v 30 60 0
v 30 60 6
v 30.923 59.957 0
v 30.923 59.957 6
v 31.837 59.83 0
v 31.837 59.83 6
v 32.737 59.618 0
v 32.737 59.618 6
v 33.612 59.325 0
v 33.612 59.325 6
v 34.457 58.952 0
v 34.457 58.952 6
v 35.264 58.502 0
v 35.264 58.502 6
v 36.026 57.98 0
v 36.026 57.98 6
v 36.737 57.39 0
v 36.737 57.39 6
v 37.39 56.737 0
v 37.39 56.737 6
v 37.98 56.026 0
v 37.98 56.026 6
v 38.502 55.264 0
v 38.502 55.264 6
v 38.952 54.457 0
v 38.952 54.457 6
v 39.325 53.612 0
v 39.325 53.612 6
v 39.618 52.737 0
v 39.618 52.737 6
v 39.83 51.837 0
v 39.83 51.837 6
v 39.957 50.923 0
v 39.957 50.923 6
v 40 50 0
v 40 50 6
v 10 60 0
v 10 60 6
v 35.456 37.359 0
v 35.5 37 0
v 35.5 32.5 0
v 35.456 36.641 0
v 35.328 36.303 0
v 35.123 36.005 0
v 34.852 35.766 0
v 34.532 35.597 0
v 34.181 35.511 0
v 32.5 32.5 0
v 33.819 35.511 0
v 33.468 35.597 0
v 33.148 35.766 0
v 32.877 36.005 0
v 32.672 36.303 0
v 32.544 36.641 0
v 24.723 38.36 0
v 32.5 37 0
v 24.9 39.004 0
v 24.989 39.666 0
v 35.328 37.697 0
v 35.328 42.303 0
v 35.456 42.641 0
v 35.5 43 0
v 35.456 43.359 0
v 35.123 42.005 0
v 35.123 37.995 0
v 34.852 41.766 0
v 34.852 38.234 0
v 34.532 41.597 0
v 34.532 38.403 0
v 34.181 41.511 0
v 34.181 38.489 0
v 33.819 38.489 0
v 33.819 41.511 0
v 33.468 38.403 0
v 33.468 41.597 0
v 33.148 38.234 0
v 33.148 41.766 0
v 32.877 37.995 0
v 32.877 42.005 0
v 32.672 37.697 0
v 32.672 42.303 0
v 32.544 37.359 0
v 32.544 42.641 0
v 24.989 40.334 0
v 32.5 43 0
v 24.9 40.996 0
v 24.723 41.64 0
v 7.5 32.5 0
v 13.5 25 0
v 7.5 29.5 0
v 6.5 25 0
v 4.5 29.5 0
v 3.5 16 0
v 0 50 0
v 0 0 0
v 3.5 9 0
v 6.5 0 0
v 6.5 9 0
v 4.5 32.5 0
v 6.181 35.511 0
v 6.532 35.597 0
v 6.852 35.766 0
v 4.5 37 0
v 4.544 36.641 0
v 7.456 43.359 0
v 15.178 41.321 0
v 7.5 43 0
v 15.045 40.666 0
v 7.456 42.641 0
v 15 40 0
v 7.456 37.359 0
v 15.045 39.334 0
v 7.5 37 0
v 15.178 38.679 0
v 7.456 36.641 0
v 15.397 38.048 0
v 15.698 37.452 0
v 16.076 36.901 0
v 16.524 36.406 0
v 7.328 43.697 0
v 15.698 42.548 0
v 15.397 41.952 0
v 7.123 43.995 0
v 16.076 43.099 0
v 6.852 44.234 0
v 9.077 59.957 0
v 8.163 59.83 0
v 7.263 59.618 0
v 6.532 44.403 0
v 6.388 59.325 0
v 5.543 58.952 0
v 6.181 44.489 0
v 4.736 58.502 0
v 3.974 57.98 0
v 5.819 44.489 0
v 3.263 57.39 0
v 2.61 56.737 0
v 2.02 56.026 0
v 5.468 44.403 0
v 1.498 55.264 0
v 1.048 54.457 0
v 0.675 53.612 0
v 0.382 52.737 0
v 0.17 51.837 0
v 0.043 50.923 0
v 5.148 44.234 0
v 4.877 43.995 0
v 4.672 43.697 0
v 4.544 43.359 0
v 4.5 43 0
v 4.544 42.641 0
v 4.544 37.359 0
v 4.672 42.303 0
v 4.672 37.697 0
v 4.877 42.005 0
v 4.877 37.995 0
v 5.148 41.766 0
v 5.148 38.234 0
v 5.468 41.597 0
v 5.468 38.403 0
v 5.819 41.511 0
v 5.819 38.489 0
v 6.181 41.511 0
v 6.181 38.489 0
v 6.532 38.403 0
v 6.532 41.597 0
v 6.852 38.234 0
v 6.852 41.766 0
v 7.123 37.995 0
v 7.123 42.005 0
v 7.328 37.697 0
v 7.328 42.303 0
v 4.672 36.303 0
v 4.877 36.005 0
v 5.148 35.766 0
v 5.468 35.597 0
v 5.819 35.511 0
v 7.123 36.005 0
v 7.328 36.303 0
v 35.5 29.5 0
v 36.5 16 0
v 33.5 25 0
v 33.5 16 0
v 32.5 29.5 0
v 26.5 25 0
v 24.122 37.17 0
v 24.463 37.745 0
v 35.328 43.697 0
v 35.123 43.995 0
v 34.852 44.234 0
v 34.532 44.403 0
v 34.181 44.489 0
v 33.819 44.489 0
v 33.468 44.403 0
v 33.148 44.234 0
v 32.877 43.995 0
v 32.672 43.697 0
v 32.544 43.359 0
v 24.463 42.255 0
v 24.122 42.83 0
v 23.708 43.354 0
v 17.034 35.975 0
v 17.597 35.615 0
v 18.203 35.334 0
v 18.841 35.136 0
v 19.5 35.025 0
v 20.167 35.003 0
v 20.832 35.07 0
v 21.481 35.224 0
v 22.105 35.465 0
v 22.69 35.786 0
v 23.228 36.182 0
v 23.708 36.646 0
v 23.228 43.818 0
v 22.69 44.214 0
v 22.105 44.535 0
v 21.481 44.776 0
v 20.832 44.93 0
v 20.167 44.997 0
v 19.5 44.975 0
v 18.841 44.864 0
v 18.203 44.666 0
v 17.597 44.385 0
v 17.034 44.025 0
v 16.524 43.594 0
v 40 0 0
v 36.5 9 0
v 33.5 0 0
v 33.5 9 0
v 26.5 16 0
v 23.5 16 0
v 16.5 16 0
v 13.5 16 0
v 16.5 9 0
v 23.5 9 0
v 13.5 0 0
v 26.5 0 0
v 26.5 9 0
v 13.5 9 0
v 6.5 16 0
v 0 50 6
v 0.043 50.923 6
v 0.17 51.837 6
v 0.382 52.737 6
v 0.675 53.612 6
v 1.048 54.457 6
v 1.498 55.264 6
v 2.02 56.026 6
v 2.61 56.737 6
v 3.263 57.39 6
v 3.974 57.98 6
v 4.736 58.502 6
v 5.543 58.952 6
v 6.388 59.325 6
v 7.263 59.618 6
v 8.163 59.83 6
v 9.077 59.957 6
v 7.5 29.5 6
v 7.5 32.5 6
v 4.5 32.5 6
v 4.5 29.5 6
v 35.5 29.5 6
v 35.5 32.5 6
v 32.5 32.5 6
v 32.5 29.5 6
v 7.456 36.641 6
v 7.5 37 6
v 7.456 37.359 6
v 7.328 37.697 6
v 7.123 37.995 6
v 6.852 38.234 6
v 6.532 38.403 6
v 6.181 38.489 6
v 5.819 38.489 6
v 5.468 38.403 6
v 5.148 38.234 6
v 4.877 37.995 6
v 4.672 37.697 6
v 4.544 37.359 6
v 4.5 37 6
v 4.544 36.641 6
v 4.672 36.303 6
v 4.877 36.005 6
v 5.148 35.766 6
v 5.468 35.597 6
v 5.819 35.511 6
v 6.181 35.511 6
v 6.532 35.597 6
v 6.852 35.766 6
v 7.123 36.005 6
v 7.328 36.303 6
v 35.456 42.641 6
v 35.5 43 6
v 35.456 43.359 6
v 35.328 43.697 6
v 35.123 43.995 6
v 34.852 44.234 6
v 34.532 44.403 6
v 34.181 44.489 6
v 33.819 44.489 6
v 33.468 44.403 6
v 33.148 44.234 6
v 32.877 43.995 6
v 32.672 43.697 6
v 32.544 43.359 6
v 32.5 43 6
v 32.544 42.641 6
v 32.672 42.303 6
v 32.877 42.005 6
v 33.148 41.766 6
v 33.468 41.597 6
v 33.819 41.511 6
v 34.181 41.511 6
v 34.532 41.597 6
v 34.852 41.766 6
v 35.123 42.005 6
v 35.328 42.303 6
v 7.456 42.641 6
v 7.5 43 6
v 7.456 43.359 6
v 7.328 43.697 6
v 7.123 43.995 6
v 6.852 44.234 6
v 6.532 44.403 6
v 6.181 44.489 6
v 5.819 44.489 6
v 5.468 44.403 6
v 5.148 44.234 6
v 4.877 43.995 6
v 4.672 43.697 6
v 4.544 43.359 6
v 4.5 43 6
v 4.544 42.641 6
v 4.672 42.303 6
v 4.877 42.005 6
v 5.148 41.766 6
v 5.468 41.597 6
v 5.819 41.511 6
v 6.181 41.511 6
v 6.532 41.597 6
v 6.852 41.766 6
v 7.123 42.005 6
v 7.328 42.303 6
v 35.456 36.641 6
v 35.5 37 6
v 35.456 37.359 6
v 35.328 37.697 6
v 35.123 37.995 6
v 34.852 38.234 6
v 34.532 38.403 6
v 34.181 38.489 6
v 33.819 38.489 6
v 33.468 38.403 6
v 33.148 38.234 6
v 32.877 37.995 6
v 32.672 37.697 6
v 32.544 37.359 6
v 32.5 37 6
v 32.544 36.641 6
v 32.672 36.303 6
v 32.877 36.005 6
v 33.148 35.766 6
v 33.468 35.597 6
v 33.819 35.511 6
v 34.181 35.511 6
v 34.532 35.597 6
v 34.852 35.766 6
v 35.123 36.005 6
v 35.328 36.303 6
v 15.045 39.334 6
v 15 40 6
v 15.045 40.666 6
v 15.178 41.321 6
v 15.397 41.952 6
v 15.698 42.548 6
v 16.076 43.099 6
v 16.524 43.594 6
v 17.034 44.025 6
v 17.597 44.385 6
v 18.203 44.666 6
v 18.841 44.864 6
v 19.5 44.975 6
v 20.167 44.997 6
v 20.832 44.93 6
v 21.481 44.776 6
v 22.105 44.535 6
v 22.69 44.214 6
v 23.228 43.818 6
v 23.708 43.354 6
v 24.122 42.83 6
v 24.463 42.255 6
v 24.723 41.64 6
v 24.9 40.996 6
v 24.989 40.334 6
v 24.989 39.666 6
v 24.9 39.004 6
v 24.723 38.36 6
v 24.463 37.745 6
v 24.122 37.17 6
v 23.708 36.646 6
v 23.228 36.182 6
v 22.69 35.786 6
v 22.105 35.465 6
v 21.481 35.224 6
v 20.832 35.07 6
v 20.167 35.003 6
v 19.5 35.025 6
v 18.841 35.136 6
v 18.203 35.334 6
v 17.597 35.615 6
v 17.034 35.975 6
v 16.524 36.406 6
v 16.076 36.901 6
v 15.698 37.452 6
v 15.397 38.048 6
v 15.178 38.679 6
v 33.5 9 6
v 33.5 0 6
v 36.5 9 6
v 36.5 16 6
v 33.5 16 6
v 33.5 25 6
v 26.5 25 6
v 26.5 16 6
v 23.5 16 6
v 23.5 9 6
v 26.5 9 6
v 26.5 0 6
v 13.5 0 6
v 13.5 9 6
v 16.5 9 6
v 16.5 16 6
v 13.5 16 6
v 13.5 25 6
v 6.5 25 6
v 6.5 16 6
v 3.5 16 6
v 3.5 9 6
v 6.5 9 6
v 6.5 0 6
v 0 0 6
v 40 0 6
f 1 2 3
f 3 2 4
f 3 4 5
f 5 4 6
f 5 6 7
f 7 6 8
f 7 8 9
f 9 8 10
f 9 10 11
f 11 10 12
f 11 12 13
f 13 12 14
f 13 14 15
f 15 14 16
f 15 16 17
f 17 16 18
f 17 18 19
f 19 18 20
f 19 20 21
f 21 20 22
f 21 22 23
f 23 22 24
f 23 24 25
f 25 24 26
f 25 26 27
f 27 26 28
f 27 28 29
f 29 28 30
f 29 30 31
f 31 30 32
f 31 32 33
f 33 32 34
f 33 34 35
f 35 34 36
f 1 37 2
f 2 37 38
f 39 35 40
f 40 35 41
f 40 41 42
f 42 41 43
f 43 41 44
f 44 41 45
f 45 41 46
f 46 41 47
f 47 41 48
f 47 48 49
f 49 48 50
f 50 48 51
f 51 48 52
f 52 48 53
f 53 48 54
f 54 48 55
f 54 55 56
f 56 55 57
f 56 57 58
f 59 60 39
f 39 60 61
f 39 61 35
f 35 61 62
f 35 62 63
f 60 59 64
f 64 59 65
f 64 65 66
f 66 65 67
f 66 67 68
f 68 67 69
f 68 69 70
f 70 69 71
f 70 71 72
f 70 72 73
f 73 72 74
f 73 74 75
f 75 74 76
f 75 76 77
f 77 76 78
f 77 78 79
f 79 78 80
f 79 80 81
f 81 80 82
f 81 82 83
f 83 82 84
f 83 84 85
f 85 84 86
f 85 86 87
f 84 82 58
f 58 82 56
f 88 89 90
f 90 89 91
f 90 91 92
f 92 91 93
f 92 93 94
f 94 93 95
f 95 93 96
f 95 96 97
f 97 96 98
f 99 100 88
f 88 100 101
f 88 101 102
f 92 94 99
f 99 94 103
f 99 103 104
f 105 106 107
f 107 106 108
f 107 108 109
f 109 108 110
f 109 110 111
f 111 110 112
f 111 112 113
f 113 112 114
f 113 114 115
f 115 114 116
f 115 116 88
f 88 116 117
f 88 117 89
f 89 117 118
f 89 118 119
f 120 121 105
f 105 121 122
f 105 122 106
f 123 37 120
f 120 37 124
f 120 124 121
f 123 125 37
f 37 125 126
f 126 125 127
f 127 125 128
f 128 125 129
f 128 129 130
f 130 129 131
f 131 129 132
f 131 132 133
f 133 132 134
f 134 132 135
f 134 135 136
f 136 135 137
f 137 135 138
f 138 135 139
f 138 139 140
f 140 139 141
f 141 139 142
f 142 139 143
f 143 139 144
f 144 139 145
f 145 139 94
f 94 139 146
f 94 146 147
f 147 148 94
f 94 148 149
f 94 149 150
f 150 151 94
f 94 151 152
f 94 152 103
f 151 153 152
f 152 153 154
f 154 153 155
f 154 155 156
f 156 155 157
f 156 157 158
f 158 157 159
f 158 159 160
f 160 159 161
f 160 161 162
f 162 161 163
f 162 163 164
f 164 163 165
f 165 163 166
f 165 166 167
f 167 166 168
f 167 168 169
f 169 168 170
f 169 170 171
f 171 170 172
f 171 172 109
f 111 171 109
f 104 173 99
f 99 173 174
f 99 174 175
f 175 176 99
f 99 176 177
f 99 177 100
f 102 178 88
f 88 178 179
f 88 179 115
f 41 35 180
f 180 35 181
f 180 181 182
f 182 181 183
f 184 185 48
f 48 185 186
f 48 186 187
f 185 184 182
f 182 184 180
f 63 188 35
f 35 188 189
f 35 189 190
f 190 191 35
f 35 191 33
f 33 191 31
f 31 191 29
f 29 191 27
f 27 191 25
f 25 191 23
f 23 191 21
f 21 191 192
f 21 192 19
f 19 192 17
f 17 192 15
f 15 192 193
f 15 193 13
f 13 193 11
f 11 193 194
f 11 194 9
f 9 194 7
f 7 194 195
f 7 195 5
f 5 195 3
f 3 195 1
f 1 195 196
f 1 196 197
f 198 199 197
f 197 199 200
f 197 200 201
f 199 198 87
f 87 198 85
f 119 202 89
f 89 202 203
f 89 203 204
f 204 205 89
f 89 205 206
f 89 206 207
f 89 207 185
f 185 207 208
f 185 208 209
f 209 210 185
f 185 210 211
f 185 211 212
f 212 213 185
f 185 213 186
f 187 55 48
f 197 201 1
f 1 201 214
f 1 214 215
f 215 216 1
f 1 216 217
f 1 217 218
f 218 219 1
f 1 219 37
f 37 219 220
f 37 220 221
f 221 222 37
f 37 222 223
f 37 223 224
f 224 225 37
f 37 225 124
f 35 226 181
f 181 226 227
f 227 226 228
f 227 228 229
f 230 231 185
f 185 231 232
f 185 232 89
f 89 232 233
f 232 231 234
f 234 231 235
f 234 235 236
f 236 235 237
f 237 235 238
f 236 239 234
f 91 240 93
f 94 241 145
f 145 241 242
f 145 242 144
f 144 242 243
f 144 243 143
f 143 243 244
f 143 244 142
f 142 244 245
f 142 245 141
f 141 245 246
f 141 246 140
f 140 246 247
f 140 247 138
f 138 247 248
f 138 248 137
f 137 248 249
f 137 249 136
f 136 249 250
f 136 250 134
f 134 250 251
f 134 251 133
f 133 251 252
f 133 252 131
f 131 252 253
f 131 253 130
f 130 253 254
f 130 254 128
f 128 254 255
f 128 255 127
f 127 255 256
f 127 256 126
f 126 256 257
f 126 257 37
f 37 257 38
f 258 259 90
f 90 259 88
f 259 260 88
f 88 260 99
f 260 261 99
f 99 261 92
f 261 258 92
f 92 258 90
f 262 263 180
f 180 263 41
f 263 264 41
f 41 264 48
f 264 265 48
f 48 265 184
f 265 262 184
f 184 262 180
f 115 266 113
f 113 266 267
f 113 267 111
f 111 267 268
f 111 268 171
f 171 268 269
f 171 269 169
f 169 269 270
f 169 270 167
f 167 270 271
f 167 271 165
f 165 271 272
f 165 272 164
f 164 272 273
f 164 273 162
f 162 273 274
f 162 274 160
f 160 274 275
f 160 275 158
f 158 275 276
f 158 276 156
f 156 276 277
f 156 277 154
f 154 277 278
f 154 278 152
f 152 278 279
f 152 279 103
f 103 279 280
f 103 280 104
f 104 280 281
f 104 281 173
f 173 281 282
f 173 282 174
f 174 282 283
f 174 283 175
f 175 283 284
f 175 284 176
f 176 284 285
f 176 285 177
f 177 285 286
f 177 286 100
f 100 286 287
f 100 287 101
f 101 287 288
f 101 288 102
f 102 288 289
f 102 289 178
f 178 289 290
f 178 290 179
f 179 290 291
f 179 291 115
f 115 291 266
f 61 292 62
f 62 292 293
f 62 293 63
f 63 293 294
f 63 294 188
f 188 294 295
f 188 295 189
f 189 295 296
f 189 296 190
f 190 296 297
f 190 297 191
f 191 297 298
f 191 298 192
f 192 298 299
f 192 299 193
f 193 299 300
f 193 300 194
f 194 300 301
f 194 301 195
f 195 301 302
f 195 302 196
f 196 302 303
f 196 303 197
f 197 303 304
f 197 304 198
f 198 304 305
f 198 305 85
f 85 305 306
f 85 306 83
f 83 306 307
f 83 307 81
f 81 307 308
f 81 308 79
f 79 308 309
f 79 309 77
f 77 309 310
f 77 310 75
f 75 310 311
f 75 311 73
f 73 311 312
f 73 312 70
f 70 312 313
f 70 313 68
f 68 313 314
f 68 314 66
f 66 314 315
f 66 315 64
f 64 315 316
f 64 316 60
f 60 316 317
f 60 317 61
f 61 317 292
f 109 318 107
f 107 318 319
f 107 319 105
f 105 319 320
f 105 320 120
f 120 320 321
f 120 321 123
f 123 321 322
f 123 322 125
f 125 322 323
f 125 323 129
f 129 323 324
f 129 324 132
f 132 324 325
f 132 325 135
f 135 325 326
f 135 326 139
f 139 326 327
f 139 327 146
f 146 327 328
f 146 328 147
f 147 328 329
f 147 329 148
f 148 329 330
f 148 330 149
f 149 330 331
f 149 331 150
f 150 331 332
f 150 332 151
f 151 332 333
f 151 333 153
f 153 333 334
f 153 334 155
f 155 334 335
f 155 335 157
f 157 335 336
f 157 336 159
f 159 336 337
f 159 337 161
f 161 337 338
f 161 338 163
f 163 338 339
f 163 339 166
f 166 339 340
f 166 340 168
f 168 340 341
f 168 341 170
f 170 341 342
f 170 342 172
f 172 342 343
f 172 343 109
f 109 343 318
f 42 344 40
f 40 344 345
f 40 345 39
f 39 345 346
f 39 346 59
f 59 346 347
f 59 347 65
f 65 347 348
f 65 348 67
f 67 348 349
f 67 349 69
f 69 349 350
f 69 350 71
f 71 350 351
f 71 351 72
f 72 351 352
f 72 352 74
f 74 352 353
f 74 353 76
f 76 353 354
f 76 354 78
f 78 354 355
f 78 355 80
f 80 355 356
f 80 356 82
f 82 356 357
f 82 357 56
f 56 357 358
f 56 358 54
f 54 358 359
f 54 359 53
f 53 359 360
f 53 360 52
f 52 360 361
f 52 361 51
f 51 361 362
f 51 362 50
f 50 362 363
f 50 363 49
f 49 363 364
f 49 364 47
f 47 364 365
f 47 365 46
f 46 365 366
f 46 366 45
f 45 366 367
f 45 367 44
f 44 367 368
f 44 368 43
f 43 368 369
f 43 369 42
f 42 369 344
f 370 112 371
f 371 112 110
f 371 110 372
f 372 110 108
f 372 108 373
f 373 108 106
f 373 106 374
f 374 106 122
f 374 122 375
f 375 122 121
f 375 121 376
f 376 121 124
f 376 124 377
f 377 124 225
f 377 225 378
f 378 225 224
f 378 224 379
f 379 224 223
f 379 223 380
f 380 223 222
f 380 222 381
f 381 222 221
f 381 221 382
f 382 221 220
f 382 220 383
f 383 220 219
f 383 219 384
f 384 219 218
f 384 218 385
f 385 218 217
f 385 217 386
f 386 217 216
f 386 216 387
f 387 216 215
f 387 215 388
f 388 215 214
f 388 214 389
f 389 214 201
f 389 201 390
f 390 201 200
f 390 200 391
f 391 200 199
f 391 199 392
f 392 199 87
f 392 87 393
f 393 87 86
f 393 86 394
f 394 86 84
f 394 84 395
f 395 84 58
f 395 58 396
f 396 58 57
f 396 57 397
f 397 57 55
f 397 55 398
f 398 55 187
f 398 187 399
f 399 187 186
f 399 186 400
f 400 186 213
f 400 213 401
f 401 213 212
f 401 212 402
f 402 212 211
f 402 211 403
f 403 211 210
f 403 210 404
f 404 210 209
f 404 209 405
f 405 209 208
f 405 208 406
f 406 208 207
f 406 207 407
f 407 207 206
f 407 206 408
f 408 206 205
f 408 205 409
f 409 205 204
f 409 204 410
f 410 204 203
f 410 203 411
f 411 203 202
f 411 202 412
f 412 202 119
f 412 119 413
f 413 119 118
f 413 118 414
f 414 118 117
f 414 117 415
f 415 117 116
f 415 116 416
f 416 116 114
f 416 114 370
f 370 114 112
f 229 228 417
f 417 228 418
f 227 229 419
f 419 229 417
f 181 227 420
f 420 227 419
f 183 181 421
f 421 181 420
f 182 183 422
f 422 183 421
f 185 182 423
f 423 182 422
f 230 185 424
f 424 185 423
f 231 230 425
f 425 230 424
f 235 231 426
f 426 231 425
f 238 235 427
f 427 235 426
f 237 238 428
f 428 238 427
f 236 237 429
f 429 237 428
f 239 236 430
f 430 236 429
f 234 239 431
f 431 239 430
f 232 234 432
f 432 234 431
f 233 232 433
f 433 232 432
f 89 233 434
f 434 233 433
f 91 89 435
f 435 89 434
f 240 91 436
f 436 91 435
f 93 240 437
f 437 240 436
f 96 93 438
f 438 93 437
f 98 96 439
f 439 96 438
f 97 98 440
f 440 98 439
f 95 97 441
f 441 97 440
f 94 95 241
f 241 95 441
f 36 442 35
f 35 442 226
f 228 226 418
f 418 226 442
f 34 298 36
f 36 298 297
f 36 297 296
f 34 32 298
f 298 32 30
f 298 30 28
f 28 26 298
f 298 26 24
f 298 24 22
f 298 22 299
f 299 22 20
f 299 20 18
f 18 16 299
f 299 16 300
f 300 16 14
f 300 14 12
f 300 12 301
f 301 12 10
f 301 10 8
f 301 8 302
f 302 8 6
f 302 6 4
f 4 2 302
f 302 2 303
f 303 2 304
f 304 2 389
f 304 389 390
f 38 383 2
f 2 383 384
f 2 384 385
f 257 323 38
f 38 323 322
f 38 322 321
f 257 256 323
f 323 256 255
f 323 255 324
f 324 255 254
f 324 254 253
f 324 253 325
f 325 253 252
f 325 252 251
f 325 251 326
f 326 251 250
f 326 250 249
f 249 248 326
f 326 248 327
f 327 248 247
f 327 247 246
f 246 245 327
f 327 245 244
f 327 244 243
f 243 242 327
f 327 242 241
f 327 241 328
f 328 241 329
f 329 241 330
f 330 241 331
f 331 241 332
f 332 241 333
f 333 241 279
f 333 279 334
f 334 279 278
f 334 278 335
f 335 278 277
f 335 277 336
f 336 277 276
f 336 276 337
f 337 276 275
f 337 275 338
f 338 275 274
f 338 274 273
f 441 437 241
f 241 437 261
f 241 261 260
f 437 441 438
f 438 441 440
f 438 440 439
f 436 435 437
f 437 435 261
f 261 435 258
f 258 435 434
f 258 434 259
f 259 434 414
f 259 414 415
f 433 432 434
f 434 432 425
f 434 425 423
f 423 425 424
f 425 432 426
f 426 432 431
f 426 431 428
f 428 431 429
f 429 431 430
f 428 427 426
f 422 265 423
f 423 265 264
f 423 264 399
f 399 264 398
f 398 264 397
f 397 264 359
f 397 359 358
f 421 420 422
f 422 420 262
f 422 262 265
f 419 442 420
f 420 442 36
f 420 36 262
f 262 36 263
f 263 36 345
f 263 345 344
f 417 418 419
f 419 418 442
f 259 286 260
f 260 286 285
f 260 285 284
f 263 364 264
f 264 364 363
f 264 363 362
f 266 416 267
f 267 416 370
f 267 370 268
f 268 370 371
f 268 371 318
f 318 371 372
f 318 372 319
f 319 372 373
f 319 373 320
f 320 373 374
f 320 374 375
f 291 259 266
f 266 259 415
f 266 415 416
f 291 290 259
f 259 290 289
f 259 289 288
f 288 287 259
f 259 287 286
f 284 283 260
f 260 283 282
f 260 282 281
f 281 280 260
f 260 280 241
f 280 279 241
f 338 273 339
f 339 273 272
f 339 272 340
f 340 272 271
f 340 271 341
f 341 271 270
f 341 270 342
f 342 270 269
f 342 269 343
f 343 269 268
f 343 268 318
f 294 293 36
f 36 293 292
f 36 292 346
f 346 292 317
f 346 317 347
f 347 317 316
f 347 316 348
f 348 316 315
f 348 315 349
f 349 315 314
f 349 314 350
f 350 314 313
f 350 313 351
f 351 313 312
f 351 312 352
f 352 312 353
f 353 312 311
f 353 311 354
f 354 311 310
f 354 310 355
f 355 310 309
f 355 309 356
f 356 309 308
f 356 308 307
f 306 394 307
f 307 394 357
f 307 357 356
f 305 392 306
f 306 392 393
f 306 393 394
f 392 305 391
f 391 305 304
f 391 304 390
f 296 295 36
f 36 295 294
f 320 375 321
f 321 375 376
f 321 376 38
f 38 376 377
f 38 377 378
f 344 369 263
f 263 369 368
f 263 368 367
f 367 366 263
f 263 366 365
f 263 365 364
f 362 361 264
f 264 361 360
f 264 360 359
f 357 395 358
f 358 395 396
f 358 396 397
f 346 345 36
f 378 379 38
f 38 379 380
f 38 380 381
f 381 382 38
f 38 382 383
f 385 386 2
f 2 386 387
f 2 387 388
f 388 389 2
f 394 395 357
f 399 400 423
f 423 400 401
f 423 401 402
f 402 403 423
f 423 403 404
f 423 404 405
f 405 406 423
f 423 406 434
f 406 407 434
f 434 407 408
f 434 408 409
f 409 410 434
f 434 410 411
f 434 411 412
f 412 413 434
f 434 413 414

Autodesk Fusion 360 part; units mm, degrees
sketch "Sketch1" plane through (0, 0, 0) normal (0, 0, 1) x (1, 0, 0)
  line L0 (0, 0) -> (40, 0)
  line L1 (40, 0) -> (40, 60)
  line L2 (40, 60) -> (0, 60)
  line L3 (0, 60) -> (0, 0)
  line L4 (20, 60) -> (20, 27.089)
  circle A0 centre (20, 40) radius 5
  line L5 (6.5, 0) -> (13.5, 0)
  line L6 (13.5, 0) -> (13.5, 25)
  line L7 (13.5, 25) -> (6.5, 25)
  line L8 (6.5, 25) -> (6.5, 0)
  line L9 (26.5, 0) -> (33.5, 0)
  line L10 (33.5, 0) -> (33.5, 25)
  line L11 (33.5, 25) -> (26.5, 25)
  line L12 (26.5, 25) -> (26.5, 0)
  line L13 (10, 25) -> (30, 25)
  line L14 (20, 25) -> (20, 0)
  line L15 (0, 16) -> (40, 16)
  line L16 (3.5, 16) -> (16.5, 16)
  line L17 (16.5, 16) -> (16.5, 9)
  line L18 (16.5, 9) -> (3.5, 9)
  line L19 (3.5, 9) -> (3.5, 16)
  line L20 (3.5, 12.5) -> (6.5, 12.5)
  line L21 (10, 9) -> (10, 0)
  line L22 (23.5, 16) -> (23.5, 9)
  line L23 (23.5, 9) -> (36.5, 9)
  line L24 (36.5, 9) -> (36.5, 16)
  dimension "d1" = 40
  dimension "d2" = 60
  dimension "d3" = 10
  dimension "d4" = 40
  dimension "d5" = 7
  dimension "d6" = 7
  dimension "d7" = 25
  dimension "d8" = 25
  dimension "d9" = 20
  dimension "d10" = 90
  dimension "d11" = 90
  dimension "d12" = 13
  dimension "d13" = 90
  dimension "d14" = 7
extrude "Extrude1" add sketch "Sketch1" along normal blind 6 contours L0 L3 L8 L15 L18 L19 | L1 L2 L3 L7 L8 L10 L11 L13 L15 L16 | L0 L6 L14 L15 L17 L18 | L0 L12 L14 L15 L22 L23 | L6 L13 L14 L15 L16 | L12 L13 L14 L15 | L0 L1 L10 L15 L23 L24
sketch "Sketch2" plane through (0, 0, 6) normal (0, 0, 1) x (-1, 0, 0)
  circle A0 centre (-20, -40) radius 5
  line L0 (-33.5, 0) -> (-40, 0)
  line L1 (-40, 0) -> (-40, -60)
  line L2 (-40, -60) -> (0, -60)
  line L3 (0, -60) -> (0, 0)
  line L4 (0, 0) -> (-6.5, 0)
  line L5 (-6.5, 0) -> (-6.5, -9)
  line L6 (-6.5, -9) -> (-3.5, -9)
  line L7 (-3.5, -9) -> (-3.5, -16)
  line L8 (-3.5, -16) -> (-6.5, -16)
  line L9 (-6.5, -16) -> (-6.5, -25)
  line L10 (-6.5, -25) -> (-13.5, -25)
  line L11 (-13.5, -25) -> (-13.5, -16)
  line L12 (-13.5, -16) -> (-16.5, -16)
  line L13 (-16.5, -16) -> (-16.5, -9)
  line L14 (-16.5, -9) -> (-13.5, -9)
  line L15 (-13.5, -9) -> (-13.5, 0)
  line L16 (-13.5, 0) -> (-26.5, 0)
  line L17 (-26.5, 0) -> (-26.5, -9)
  line L18 (-26.5, -9) -> (-23.5, -9)
  line L19 (-23.5, -9) -> (-23.5, -16)
  line L20 (-23.5, -16) -> (-26.5, -16)
  line L21 (-26.5, -16) -> (-26.5, -25)
  line L22 (-26.5, -25) -> (-33.5, -25)
  line L23 (-33.5, -25) -> (-33.5, -16)
  line L24 (-33.5, -16) -> (-36.5, -16)
  line L25 (-36.5, -16) -> (-36.5, -9)
  line L26 (-36.5, -9) -> (-33.5, -9)
  line L27 (-33.5, -9) -> (-33.5, 0)
  line L28 (0, -40) -> (-40, -40)
  line L29 (-6, -45) -> (-6, -35)
  circle A1 centre (-6, -43) radius 1.5
  circle A2 centre (-6, -37) radius 1.5
  line L30 (-6, -43) -> (-6, -37)
  line L31 (-6, -40) -> (0, -40)
  line L32 (-20, -40) -> (-20, -45)
  circle A3 centre (-34, -43) radius 1.5
  circle A4 centre (-34, -37) radius 1.5
  dimension "d17" = 6
  dimension "d18" = 3
  dimension "d19" = 3
  dimension "d20" = 6
  dimension "d21" = 90
extrude "Extrude2" cut sketch "Sketch2" against normal blind 5 contours L29 A1 L30 | L29 A1 L30 | L29 A2 L30 | L29 A2 L30 | A3 | A4
sketch "Sketch3" plane through (0, 0, 6) normal (0, 0, 1) x (-1, 0, 0)
  circle A0 centre (-6, -37) radius 1.5
  circle A1 centre (-34, -43) radius 1.5
  circle A2 centre (-6, -43) radius 1.5
  circle A3 centre (-34, -37) radius 1.5
  circle A4 centre (-20, -40) radius 5
  line L0 (-33.5, 0) -> (-40, 0)
  line L1 (-40, 0) -> (-40, -60)
  line L2 (-40, -60) -> (0, -60)
  line L3 (0, -60) -> (0, 0)
  line L4 (0, 0) -> (-6.5, 0)
  line L5 (-6.5, 0) -> (-6.5, -9)
  line L6 (-6.5, -9) -> (-3.5, -9)
  line L7 (-3.5, -9) -> (-3.5, -16)
  line L8 (-3.5, -16) -> (-6.5, -16)
  line L9 (-6.5, -16) -> (-6.5, -25)
  line L10 (-6.5, -25) -> (-13.5, -25)
  line L11 (-13.5, -25) -> (-13.5, -16)
  line L12 (-13.5, -16) -> (-16.5, -16)
  line L13 (-16.5, -16) -> (-16.5, -9)
  line L14 (-16.5, -9) -> (-13.5, -9)
  line L15 (-13.5, -9) -> (-13.5, 0)
  line L16 (-13.5, 0) -> (-26.5, 0)
  line L17 (-26.5, 0) -> (-26.5, -9)
  line L18 (-26.5, -9) -> (-23.5, -9)
  line L19 (-23.5, -9) -> (-23.5, -16)
  line L20 (-23.5, -16) -> (-26.5, -16)
  line L21 (-26.5, -16) -> (-26.5, -25)
  line L22 (-26.5, -25) -> (-33.5, -25)
  line L23 (-33.5, -25) -> (-33.5, -16)
  line L24 (-33.5, -16) -> (-36.5, -16)
  line L25 (-36.5, -16) -> (-36.5, -9)
  line L26 (-36.5, -9) -> (-33.5, -9)
  line L27 (-33.5, -9) -> (-33.5, 0)
  line L28 (0, -31) -> (-40, -31)
  line L29 (-4.5, -32.5) -> (-7.5, -32.5)
  line L30 (-7.5, -32.5) -> (-7.5, -29.5)
  line L31 (-7.5, -29.5) -> (-4.5, -29.5)
  line L32 (-4.5, -29.5) -> (-4.5, -32.5)
  line L33 (-6, -37) -> (0, -37)
  line L34 (-6, -37) -> (-6, -32.5)
  line L35 (-4.5, -31) -> (0, -31)
  line L36 (-20, -40) -> (-20, -43)
  line L37 (-35.5, -32.5) -> (-32.5, -32.5)
  line L38 (-32.5, -32.5) -> (-32.5, -29.5)
  line L39 (-35.5, -29.5) -> (-35.5, -32.5)
  line L40 (-32.5, -29.5) -> (-35.5, -29.5)
  dimension "d24" = 3
  dimension "d25" = 3
  dimension "d26" = 90
  dimension "d27" = 6
  dimension "d28" = 90
extrude "Extrude3" cut sketch "Sketch3" against normal blind 5 contours L28 L29 L30 L32 | L28 L30 L31 L32 | L28 L37 L38 L39 | L28 L38 L39 L40
fillet "Fillet1" radius 10 1 edges at (0, 60, 3)
fillet "Fillet2" radius 10 1 edges at (40, 60, 3)
extrude "Extrude4" cut 6 faces at (6.8158, 43.2169, 1) (6.1827, 37.4654, 1) (6.5, 30.5, 1) (33.5, 30.5, 1) (33.9601, 37.4654, 1) (33.2997, 43.1474, 1) along direction (0, 0, -1) blind 5
